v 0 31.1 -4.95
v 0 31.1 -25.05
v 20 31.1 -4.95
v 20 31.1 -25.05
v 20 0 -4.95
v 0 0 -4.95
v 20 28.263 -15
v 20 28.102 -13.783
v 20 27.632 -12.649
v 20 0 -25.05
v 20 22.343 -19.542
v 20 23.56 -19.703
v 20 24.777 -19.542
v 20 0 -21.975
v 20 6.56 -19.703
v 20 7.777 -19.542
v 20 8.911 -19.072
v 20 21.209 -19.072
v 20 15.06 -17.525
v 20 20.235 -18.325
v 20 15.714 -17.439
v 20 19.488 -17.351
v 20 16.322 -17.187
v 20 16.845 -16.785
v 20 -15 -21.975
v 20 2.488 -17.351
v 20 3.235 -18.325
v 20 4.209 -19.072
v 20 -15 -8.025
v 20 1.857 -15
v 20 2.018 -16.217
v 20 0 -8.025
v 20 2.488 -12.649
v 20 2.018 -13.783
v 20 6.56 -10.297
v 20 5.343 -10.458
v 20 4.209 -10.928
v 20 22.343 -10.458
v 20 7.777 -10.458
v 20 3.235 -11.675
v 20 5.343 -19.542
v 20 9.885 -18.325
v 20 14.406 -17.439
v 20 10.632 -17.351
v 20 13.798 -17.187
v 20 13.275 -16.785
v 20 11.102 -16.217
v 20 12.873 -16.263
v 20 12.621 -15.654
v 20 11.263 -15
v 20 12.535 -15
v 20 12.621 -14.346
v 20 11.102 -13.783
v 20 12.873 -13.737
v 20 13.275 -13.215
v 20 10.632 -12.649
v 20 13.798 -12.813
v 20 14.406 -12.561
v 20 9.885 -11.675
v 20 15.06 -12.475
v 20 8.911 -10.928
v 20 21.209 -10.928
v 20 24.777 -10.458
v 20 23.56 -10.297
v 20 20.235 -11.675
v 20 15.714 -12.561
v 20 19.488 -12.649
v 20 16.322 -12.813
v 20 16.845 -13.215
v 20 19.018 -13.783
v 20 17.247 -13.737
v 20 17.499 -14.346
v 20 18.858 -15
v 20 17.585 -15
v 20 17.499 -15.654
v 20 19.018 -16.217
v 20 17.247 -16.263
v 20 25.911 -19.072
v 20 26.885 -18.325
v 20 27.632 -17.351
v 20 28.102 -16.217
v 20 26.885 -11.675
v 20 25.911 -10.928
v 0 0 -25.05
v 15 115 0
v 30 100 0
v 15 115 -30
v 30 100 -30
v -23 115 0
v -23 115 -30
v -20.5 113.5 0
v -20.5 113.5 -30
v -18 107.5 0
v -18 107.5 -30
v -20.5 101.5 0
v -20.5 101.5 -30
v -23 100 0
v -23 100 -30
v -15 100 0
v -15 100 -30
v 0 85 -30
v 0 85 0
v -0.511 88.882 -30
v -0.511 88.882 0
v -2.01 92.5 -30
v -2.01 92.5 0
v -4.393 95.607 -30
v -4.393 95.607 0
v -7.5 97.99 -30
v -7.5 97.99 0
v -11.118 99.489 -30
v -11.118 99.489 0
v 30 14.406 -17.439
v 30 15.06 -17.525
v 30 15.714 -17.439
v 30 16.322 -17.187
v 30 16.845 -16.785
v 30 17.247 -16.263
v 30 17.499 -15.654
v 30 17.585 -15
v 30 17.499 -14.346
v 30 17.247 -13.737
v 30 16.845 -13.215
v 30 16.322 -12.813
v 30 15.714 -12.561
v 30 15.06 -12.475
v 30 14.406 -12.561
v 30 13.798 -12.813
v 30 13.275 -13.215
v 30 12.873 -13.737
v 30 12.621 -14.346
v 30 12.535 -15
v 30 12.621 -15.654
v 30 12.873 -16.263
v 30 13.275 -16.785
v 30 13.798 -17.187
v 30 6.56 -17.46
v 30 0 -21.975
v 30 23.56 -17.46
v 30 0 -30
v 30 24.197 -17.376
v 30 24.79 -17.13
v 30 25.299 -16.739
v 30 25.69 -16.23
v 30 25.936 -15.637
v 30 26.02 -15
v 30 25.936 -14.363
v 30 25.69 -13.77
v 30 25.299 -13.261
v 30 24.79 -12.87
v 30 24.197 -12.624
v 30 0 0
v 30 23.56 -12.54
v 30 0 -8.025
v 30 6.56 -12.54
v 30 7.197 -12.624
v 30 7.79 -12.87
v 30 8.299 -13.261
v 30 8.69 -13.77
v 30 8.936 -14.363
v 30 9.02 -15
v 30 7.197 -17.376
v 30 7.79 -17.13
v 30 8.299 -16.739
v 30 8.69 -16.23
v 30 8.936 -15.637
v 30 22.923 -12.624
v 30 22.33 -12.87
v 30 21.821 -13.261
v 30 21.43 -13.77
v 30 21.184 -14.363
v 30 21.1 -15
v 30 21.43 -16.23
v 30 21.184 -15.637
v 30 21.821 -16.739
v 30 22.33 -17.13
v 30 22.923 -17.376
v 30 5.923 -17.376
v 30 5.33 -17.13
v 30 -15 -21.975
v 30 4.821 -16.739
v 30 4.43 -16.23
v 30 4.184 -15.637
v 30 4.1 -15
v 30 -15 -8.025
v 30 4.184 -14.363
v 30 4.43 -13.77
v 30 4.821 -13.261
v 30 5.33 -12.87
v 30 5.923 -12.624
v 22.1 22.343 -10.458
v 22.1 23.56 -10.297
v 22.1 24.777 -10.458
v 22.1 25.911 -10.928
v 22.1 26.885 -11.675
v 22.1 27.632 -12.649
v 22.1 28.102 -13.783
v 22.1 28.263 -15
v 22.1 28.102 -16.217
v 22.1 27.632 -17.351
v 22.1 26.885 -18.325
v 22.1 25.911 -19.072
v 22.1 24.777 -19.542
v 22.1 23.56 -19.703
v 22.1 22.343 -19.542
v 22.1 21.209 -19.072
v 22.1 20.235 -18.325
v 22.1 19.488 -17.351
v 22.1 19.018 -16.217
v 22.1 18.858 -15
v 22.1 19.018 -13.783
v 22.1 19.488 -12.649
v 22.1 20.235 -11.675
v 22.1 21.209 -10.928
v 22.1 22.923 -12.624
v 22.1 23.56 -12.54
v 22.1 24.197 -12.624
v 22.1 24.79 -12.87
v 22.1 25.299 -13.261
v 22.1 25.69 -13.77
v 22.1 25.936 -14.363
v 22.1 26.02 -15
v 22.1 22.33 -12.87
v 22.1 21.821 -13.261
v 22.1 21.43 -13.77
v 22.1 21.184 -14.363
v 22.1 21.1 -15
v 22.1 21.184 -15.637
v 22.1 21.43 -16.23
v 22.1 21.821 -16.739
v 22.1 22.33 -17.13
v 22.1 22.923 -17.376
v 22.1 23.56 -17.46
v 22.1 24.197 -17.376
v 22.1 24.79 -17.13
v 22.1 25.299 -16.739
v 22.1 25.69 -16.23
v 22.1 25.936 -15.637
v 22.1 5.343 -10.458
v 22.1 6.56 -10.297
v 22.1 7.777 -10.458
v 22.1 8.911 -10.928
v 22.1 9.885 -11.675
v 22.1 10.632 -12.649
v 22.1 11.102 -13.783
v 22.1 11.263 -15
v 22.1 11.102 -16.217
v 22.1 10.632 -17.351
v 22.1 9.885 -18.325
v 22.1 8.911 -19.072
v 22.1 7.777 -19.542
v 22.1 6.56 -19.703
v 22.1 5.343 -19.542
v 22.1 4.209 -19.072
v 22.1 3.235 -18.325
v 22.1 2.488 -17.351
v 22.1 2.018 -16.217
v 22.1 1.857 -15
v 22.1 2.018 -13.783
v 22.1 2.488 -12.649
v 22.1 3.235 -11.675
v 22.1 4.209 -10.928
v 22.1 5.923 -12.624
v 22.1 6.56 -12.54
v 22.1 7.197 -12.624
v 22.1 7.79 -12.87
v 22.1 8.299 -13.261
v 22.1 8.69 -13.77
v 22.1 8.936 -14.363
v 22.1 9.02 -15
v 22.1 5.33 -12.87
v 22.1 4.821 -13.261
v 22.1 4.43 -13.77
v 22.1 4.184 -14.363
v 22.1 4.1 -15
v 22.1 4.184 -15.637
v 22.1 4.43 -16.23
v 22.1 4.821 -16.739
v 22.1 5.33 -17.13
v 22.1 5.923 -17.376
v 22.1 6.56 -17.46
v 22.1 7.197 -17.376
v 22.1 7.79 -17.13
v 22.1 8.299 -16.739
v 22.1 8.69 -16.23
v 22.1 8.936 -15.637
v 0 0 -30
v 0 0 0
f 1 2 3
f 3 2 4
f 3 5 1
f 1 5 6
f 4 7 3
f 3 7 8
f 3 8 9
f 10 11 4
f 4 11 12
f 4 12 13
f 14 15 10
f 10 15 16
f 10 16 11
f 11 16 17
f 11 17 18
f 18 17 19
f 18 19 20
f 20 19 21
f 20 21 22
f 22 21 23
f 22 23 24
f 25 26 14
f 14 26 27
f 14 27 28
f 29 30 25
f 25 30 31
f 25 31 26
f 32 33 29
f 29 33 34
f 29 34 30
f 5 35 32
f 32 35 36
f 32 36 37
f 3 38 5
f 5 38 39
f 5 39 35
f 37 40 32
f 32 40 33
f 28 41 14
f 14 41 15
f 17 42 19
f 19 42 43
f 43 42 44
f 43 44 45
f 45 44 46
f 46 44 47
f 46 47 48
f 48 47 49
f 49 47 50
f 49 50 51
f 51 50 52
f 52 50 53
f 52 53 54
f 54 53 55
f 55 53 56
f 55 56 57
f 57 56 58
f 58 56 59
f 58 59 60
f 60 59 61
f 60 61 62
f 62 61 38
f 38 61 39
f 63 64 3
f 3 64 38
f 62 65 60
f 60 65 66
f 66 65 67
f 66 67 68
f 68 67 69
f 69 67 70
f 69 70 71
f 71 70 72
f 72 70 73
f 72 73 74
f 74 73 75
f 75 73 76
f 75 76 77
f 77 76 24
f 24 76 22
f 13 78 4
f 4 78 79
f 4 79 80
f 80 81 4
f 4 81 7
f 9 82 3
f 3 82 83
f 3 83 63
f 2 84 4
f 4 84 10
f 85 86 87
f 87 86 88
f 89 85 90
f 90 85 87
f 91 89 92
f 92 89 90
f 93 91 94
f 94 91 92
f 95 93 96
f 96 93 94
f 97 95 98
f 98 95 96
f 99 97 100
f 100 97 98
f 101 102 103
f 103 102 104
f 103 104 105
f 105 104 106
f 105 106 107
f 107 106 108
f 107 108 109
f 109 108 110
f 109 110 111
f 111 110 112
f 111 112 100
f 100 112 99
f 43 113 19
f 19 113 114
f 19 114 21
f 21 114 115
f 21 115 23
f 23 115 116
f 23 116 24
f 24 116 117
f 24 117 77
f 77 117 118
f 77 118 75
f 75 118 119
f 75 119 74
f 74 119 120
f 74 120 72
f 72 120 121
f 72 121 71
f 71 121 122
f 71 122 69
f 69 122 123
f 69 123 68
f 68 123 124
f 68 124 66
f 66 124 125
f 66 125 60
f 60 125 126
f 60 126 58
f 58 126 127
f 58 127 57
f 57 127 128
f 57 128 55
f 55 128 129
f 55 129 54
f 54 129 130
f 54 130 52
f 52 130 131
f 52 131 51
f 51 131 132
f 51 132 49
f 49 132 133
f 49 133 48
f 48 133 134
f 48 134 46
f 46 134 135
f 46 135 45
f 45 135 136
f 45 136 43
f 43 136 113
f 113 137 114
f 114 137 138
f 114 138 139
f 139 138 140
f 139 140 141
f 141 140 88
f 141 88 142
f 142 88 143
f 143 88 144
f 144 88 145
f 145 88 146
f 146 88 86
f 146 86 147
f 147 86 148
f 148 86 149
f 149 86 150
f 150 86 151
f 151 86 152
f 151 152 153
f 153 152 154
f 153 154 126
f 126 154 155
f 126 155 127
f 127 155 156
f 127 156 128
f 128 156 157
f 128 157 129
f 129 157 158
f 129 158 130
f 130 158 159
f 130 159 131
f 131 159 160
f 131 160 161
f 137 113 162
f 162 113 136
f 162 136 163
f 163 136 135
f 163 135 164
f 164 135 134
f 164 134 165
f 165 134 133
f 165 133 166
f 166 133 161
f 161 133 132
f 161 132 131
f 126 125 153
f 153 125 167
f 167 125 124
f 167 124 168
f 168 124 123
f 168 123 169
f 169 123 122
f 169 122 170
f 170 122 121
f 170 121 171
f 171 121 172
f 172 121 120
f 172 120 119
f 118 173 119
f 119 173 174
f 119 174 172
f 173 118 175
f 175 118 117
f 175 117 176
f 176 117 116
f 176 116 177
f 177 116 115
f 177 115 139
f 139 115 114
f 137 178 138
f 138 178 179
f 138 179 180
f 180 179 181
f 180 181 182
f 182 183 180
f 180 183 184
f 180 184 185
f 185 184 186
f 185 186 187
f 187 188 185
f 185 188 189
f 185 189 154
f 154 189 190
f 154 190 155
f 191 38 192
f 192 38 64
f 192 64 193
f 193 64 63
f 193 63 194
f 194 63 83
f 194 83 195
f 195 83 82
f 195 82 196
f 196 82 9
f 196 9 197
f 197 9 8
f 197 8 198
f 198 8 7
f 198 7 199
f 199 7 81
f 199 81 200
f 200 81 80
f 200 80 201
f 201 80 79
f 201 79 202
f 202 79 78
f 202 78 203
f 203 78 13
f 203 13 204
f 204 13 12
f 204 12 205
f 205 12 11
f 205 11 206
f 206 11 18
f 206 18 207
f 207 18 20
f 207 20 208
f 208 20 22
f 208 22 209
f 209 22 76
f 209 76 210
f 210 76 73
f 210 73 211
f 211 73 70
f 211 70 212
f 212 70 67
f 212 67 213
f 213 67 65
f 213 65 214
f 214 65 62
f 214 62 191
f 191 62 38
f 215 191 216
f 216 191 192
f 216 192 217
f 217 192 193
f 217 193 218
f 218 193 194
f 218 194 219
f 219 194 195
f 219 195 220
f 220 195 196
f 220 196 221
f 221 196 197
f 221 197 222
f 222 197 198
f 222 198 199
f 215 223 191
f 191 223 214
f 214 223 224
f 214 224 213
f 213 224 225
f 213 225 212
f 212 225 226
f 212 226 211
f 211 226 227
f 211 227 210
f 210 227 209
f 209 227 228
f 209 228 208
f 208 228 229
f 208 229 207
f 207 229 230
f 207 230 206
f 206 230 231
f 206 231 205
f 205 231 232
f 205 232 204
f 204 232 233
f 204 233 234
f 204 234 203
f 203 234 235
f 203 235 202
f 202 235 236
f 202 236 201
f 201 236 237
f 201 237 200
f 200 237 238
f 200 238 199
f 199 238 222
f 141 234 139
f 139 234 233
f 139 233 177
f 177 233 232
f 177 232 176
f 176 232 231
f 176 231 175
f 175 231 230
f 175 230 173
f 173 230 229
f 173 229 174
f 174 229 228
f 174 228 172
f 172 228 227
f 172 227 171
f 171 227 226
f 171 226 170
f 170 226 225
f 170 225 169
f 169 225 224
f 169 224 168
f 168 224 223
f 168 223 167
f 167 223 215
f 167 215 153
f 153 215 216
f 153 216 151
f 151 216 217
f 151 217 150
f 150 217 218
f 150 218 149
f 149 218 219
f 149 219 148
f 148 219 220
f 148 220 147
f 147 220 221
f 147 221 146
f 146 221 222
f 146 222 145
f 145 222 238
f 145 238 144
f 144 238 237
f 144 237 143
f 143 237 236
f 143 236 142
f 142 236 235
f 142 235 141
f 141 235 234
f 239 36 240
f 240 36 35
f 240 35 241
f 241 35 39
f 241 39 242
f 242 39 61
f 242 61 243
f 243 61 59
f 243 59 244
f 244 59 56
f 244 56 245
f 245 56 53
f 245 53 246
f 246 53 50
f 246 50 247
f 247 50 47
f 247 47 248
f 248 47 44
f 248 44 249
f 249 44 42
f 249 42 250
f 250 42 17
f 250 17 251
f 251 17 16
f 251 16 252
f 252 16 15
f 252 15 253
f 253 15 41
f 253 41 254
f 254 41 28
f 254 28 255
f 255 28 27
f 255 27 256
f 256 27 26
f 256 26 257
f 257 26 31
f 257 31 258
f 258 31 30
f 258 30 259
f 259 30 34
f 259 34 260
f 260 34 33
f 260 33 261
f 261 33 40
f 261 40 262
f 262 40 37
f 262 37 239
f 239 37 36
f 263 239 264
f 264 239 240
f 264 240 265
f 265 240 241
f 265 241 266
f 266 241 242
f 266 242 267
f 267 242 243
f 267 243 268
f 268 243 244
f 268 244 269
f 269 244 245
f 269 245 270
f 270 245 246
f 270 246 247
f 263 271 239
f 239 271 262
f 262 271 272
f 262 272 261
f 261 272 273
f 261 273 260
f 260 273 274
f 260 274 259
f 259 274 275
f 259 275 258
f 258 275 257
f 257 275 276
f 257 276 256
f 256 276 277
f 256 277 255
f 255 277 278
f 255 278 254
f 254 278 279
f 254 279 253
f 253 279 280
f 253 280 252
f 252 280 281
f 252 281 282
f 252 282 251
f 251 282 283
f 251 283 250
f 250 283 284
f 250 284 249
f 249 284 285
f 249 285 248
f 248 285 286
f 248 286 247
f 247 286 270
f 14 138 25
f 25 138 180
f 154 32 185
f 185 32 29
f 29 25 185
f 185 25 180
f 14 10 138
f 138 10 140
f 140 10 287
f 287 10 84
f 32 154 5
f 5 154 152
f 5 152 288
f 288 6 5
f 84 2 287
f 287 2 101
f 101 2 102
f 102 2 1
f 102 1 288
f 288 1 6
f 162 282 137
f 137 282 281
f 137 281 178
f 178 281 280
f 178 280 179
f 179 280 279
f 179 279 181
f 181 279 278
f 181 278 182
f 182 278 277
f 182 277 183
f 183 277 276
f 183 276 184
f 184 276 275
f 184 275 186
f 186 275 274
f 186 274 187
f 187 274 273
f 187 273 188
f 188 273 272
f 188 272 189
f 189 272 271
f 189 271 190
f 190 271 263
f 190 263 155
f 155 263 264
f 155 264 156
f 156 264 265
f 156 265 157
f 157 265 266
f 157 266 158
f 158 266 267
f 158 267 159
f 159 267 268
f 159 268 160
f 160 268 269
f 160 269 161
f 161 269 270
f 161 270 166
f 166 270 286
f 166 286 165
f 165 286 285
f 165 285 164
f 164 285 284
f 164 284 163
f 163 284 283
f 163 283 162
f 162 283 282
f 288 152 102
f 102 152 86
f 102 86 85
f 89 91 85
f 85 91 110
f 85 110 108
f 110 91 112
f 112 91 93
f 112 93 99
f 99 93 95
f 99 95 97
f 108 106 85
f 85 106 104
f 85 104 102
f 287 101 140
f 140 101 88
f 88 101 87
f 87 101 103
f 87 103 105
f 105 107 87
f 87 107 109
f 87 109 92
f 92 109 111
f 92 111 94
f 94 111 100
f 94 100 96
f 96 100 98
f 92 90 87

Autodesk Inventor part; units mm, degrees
ref_plane "YZ Plane" through (0, 0, 0) normal (1, 0, 0) x (0, 1, 0)
ref_plane "XZ Plane" through (0, 0, 0) normal (0, 1, 0) x (-1, 0, 0)
ref_plane "XY Plane" through (0, 0, 0) normal (0, 0, 1) x (1, 0, 0)
sketch "Sketch1" plane through (0, 0, 0) normal (0, 0, 1) x (1, 0, 0)
  line L0 (0, 0) -> (25, 0)
  line L1 (25, 0) -> (25, 40)
  line L2 (25, 40) -> (0, 40)
  line L3 (0, 40) -> (0, 0)
  dimension "d1" = 25
  dimension "d2" = 40
  dimension "d3" = 25
extrude "Extrusion1" add sketch "Sketch1" against normal blind 30
sketch "Sketch2" plane through (25, 0, 0) normal (1, 0, 0) x (0, 0, -1)
  line L0 (0, 0) -> (30, 0) projected
  circle A0 centre (15, 6.56) radius 2.46
extrude "Extrusion2" cut sketch "Sketch2" against normal blind 30
sketch "Sketch3" plane through (0, 0, 0) normal (-1, 0, 0) x (0, 0, 1)
  line L0 (0, 0) -> (-30, 0) projected
  line L1 (-25.05, 0) -> (-4.95, 0)
  line L2 (-4.95, 0) -> (-4.95, 33.12)
  line L3 (-4.95, 33.12) -> (-25.05, 33.12)
  line L4 (-25.05, 33.12) -> (-25.05, 0)
  dimension "d11" = 20.1
extrude "Extrusion3" cut sketch "Sketch3" against normal blind 20
sketch "Sketch4" plane through (0, 0, 0) normal (0, -1, 0) x (1, 0, 0)
  line L0 (20, -4.95) -> (20, -25.05) projected
  line L1 (20, -15) -> (25, -15)
  line L2 (25, 0) -> (25, -30) projected
  line L3 (20, -8.025) -> (25, -8.025)
  line L4 (25, -8.025) -> (25, -21.975)
  line L5 (25, -21.975) -> (20, -21.975)
  line L6 (20, -21.975) -> (20, -8.025)
  line L7 (20, -8.025) -> (25, -21.975) construction
  line L8 (25, -8.025) -> (20, -21.975) construction
  line L9 (25, -12.54) -> (25, -17.46) projected
  point P0 (0, 0)
  point P1 (22.5, -15)
  dimension "d14" = 13.95
extrude "Extrusion4" add sketch "Sketch4" along normal blind 15
sketch "Sketch5" plane through (20, 0, 0) normal (-1, 0, 0) x (0, 0, 1)
  circle A0 centre (-15, 6.56) radius 2.46 projected
  circle A1 centre (-15, 6.56) radius 4.7025
  circle A2 centre (-15, 6.56) radius 2.46 projected
  circle A3 centre (-15, 6.56) radius 2.46
  point P0 (0, 0)
  dimension "d17" = 9.405
extrude "Extrusion5" cut sketch "Sketch5" against normal blind 2.1
sketch "Sketch6" plane through (25, 0, 0) normal (1, 0, 0) x (0, 0, -1)
  circle A0 centre (15, 6.56) radius 4.7025 projected
  line L0 (15, 6.56) -> (15, 23.56)
  circle A1 centre (15, 23.56) radius 2.46
  point P0 (0, 0)
  dimension "d20" = 17
  dimension "d21" = 4.92
extrude "Extrusion6" cut sketch "Sketch6" against normal blind 10 contours A1
sketch "Sketch7" plane through (20, 0, 0) normal (-1, 0, 0) x (0, 0, 1)
  circle A0 centre (-15, 23.56) radius 2.46 projected
  circle A1 centre (-15, 23.56) radius 4.7025
  point P0 (0, 0)
  dimension "d24" = 9.405
extrude "Extrusion7" cut sketch "Sketch7" against normal blind 2.1
sketch "Sketch9" plane through (25, 0, 0) normal (1, 0, 0) x (0, 0, -1)
  circle A0 centre (15, 6.56) radius 2.46 projected
  circle A1 centre (15, 6.56) radius 2.46
  circle A2 centre (15, 23.56) radius 2.46 projected
  circle A3 centre (15, 23.56) radius 2.46
  line L0 (30, 40) -> (30, 0) projected
  line L1 (30, 0) -> (30, 40)
  line L2 (30, 40) -> (0, 40)
  line L3 (0, 40) -> (0, 0)
  line L4 (0, 0) -> (8.025, 0) projected
  line L5 (21.975, 0) -> (21.975, -15)
  line L6 (21.975, -15) -> (8.025, -15)
  line L7 (8.025, -15) -> (8.025, 0)
  line L8 (0, 0) -> (8.025, 0)
  line L9 (21.975, 0) -> (30, 0)
extrude "Extrusion8" add sketch "Sketch9" along normal blind 5
sketch "Sketch10" plane through (0, 40, 0) normal (0, 1, 0) x (1, 0, 0)
  line L0 (0, 30) -> (30, 30) projected
  line L1 (30, 0) -> (0, 0) projected
  line L2 (0, 30) -> (30, 30)
  line L3 (30, 30) -> (30, 0)
  line L4 (30, 0) -> (0, 0)
  line L5 (0, 0) -> (0, 30)
extrude "Extrusion9" add sketch "Sketch10" along normal blind 30
sketch "Sketch12" plane through (30, 0, 0) normal (1, 0, 0) x (0, 0, -1)
  circle A0 centre (15, 6.56) radius 2.46 projected
  line L0 (15, 6.56) -> (15, 15.06)
  circle A1 centre (15, 15.06) radius 2.525
  point P0 (0, 0)
  dimension "d31" = 8.5
  dimension "d33" = 5.05
extrude "Extrusion10" cut sketch "Sketch12" against normal blind 30 contours A1
sketch "Sketch14" plane through (0, 0, 0) normal (0, 0, 1) x (1, 0, 0)
  line L0 (30, 70) -> (0, 70) projected
  line L1 (0, 70) -> (0, 85)
  line L2 (-15, 100) -> (-23, 100)
  line L3 (30, 100) -> (15, 115)
  line L4 (-23, 115) -> (15, 115)
  line L5 (30, 0) -> (30, 70) projected
  line L6 (30, 100) -> (30, 70)
  line L7 (-20.5, 113.5) -> (-23, 115)
  line L8 (-20.5, 101.5) -> (-23, 100)
  line L9 (-18, 107.5) -> (-20.5, 101.5)
  line L10 (-18, 107.5) -> (-20.5, 113.5)
  arc A0 (0, 85) -> (-15, 100) centre (-15, 85) ccw
  point P0 (0, 0)
  point P1 (0, 100)
  dimension "d47" = 30
  dimension "d49" = 15
  dimension "d54" = 15
extrude "Extrusion12" add sketch "Sketch14" against normal blind 30
sketch "Sketch15" plane through (0, 0, -25.05) normal (-1, 0, 0) x (0, 0, 1)
  line L0 (0, 33.12) -> (20.1, 33.12) projected
  line L1 (20.1, 33.12) -> (20.1, 0) projected
  line L2 (0, 33.12) -> (20.1, 33.12)
  line L3 (20.1, 33.12) -> (20.1, 31.1)
  line L4 (20.1, 31.1) -> (0, 31.1)
  line L5 (0, 31.1) -> (0, 33.12)
  point P0 (25.05, 0)
  dimension "d57" = 2.02
extrude "Extrusion13" add sketch "Sketch15" against normal blind 20
properties part number "10mm_x_30mm"
